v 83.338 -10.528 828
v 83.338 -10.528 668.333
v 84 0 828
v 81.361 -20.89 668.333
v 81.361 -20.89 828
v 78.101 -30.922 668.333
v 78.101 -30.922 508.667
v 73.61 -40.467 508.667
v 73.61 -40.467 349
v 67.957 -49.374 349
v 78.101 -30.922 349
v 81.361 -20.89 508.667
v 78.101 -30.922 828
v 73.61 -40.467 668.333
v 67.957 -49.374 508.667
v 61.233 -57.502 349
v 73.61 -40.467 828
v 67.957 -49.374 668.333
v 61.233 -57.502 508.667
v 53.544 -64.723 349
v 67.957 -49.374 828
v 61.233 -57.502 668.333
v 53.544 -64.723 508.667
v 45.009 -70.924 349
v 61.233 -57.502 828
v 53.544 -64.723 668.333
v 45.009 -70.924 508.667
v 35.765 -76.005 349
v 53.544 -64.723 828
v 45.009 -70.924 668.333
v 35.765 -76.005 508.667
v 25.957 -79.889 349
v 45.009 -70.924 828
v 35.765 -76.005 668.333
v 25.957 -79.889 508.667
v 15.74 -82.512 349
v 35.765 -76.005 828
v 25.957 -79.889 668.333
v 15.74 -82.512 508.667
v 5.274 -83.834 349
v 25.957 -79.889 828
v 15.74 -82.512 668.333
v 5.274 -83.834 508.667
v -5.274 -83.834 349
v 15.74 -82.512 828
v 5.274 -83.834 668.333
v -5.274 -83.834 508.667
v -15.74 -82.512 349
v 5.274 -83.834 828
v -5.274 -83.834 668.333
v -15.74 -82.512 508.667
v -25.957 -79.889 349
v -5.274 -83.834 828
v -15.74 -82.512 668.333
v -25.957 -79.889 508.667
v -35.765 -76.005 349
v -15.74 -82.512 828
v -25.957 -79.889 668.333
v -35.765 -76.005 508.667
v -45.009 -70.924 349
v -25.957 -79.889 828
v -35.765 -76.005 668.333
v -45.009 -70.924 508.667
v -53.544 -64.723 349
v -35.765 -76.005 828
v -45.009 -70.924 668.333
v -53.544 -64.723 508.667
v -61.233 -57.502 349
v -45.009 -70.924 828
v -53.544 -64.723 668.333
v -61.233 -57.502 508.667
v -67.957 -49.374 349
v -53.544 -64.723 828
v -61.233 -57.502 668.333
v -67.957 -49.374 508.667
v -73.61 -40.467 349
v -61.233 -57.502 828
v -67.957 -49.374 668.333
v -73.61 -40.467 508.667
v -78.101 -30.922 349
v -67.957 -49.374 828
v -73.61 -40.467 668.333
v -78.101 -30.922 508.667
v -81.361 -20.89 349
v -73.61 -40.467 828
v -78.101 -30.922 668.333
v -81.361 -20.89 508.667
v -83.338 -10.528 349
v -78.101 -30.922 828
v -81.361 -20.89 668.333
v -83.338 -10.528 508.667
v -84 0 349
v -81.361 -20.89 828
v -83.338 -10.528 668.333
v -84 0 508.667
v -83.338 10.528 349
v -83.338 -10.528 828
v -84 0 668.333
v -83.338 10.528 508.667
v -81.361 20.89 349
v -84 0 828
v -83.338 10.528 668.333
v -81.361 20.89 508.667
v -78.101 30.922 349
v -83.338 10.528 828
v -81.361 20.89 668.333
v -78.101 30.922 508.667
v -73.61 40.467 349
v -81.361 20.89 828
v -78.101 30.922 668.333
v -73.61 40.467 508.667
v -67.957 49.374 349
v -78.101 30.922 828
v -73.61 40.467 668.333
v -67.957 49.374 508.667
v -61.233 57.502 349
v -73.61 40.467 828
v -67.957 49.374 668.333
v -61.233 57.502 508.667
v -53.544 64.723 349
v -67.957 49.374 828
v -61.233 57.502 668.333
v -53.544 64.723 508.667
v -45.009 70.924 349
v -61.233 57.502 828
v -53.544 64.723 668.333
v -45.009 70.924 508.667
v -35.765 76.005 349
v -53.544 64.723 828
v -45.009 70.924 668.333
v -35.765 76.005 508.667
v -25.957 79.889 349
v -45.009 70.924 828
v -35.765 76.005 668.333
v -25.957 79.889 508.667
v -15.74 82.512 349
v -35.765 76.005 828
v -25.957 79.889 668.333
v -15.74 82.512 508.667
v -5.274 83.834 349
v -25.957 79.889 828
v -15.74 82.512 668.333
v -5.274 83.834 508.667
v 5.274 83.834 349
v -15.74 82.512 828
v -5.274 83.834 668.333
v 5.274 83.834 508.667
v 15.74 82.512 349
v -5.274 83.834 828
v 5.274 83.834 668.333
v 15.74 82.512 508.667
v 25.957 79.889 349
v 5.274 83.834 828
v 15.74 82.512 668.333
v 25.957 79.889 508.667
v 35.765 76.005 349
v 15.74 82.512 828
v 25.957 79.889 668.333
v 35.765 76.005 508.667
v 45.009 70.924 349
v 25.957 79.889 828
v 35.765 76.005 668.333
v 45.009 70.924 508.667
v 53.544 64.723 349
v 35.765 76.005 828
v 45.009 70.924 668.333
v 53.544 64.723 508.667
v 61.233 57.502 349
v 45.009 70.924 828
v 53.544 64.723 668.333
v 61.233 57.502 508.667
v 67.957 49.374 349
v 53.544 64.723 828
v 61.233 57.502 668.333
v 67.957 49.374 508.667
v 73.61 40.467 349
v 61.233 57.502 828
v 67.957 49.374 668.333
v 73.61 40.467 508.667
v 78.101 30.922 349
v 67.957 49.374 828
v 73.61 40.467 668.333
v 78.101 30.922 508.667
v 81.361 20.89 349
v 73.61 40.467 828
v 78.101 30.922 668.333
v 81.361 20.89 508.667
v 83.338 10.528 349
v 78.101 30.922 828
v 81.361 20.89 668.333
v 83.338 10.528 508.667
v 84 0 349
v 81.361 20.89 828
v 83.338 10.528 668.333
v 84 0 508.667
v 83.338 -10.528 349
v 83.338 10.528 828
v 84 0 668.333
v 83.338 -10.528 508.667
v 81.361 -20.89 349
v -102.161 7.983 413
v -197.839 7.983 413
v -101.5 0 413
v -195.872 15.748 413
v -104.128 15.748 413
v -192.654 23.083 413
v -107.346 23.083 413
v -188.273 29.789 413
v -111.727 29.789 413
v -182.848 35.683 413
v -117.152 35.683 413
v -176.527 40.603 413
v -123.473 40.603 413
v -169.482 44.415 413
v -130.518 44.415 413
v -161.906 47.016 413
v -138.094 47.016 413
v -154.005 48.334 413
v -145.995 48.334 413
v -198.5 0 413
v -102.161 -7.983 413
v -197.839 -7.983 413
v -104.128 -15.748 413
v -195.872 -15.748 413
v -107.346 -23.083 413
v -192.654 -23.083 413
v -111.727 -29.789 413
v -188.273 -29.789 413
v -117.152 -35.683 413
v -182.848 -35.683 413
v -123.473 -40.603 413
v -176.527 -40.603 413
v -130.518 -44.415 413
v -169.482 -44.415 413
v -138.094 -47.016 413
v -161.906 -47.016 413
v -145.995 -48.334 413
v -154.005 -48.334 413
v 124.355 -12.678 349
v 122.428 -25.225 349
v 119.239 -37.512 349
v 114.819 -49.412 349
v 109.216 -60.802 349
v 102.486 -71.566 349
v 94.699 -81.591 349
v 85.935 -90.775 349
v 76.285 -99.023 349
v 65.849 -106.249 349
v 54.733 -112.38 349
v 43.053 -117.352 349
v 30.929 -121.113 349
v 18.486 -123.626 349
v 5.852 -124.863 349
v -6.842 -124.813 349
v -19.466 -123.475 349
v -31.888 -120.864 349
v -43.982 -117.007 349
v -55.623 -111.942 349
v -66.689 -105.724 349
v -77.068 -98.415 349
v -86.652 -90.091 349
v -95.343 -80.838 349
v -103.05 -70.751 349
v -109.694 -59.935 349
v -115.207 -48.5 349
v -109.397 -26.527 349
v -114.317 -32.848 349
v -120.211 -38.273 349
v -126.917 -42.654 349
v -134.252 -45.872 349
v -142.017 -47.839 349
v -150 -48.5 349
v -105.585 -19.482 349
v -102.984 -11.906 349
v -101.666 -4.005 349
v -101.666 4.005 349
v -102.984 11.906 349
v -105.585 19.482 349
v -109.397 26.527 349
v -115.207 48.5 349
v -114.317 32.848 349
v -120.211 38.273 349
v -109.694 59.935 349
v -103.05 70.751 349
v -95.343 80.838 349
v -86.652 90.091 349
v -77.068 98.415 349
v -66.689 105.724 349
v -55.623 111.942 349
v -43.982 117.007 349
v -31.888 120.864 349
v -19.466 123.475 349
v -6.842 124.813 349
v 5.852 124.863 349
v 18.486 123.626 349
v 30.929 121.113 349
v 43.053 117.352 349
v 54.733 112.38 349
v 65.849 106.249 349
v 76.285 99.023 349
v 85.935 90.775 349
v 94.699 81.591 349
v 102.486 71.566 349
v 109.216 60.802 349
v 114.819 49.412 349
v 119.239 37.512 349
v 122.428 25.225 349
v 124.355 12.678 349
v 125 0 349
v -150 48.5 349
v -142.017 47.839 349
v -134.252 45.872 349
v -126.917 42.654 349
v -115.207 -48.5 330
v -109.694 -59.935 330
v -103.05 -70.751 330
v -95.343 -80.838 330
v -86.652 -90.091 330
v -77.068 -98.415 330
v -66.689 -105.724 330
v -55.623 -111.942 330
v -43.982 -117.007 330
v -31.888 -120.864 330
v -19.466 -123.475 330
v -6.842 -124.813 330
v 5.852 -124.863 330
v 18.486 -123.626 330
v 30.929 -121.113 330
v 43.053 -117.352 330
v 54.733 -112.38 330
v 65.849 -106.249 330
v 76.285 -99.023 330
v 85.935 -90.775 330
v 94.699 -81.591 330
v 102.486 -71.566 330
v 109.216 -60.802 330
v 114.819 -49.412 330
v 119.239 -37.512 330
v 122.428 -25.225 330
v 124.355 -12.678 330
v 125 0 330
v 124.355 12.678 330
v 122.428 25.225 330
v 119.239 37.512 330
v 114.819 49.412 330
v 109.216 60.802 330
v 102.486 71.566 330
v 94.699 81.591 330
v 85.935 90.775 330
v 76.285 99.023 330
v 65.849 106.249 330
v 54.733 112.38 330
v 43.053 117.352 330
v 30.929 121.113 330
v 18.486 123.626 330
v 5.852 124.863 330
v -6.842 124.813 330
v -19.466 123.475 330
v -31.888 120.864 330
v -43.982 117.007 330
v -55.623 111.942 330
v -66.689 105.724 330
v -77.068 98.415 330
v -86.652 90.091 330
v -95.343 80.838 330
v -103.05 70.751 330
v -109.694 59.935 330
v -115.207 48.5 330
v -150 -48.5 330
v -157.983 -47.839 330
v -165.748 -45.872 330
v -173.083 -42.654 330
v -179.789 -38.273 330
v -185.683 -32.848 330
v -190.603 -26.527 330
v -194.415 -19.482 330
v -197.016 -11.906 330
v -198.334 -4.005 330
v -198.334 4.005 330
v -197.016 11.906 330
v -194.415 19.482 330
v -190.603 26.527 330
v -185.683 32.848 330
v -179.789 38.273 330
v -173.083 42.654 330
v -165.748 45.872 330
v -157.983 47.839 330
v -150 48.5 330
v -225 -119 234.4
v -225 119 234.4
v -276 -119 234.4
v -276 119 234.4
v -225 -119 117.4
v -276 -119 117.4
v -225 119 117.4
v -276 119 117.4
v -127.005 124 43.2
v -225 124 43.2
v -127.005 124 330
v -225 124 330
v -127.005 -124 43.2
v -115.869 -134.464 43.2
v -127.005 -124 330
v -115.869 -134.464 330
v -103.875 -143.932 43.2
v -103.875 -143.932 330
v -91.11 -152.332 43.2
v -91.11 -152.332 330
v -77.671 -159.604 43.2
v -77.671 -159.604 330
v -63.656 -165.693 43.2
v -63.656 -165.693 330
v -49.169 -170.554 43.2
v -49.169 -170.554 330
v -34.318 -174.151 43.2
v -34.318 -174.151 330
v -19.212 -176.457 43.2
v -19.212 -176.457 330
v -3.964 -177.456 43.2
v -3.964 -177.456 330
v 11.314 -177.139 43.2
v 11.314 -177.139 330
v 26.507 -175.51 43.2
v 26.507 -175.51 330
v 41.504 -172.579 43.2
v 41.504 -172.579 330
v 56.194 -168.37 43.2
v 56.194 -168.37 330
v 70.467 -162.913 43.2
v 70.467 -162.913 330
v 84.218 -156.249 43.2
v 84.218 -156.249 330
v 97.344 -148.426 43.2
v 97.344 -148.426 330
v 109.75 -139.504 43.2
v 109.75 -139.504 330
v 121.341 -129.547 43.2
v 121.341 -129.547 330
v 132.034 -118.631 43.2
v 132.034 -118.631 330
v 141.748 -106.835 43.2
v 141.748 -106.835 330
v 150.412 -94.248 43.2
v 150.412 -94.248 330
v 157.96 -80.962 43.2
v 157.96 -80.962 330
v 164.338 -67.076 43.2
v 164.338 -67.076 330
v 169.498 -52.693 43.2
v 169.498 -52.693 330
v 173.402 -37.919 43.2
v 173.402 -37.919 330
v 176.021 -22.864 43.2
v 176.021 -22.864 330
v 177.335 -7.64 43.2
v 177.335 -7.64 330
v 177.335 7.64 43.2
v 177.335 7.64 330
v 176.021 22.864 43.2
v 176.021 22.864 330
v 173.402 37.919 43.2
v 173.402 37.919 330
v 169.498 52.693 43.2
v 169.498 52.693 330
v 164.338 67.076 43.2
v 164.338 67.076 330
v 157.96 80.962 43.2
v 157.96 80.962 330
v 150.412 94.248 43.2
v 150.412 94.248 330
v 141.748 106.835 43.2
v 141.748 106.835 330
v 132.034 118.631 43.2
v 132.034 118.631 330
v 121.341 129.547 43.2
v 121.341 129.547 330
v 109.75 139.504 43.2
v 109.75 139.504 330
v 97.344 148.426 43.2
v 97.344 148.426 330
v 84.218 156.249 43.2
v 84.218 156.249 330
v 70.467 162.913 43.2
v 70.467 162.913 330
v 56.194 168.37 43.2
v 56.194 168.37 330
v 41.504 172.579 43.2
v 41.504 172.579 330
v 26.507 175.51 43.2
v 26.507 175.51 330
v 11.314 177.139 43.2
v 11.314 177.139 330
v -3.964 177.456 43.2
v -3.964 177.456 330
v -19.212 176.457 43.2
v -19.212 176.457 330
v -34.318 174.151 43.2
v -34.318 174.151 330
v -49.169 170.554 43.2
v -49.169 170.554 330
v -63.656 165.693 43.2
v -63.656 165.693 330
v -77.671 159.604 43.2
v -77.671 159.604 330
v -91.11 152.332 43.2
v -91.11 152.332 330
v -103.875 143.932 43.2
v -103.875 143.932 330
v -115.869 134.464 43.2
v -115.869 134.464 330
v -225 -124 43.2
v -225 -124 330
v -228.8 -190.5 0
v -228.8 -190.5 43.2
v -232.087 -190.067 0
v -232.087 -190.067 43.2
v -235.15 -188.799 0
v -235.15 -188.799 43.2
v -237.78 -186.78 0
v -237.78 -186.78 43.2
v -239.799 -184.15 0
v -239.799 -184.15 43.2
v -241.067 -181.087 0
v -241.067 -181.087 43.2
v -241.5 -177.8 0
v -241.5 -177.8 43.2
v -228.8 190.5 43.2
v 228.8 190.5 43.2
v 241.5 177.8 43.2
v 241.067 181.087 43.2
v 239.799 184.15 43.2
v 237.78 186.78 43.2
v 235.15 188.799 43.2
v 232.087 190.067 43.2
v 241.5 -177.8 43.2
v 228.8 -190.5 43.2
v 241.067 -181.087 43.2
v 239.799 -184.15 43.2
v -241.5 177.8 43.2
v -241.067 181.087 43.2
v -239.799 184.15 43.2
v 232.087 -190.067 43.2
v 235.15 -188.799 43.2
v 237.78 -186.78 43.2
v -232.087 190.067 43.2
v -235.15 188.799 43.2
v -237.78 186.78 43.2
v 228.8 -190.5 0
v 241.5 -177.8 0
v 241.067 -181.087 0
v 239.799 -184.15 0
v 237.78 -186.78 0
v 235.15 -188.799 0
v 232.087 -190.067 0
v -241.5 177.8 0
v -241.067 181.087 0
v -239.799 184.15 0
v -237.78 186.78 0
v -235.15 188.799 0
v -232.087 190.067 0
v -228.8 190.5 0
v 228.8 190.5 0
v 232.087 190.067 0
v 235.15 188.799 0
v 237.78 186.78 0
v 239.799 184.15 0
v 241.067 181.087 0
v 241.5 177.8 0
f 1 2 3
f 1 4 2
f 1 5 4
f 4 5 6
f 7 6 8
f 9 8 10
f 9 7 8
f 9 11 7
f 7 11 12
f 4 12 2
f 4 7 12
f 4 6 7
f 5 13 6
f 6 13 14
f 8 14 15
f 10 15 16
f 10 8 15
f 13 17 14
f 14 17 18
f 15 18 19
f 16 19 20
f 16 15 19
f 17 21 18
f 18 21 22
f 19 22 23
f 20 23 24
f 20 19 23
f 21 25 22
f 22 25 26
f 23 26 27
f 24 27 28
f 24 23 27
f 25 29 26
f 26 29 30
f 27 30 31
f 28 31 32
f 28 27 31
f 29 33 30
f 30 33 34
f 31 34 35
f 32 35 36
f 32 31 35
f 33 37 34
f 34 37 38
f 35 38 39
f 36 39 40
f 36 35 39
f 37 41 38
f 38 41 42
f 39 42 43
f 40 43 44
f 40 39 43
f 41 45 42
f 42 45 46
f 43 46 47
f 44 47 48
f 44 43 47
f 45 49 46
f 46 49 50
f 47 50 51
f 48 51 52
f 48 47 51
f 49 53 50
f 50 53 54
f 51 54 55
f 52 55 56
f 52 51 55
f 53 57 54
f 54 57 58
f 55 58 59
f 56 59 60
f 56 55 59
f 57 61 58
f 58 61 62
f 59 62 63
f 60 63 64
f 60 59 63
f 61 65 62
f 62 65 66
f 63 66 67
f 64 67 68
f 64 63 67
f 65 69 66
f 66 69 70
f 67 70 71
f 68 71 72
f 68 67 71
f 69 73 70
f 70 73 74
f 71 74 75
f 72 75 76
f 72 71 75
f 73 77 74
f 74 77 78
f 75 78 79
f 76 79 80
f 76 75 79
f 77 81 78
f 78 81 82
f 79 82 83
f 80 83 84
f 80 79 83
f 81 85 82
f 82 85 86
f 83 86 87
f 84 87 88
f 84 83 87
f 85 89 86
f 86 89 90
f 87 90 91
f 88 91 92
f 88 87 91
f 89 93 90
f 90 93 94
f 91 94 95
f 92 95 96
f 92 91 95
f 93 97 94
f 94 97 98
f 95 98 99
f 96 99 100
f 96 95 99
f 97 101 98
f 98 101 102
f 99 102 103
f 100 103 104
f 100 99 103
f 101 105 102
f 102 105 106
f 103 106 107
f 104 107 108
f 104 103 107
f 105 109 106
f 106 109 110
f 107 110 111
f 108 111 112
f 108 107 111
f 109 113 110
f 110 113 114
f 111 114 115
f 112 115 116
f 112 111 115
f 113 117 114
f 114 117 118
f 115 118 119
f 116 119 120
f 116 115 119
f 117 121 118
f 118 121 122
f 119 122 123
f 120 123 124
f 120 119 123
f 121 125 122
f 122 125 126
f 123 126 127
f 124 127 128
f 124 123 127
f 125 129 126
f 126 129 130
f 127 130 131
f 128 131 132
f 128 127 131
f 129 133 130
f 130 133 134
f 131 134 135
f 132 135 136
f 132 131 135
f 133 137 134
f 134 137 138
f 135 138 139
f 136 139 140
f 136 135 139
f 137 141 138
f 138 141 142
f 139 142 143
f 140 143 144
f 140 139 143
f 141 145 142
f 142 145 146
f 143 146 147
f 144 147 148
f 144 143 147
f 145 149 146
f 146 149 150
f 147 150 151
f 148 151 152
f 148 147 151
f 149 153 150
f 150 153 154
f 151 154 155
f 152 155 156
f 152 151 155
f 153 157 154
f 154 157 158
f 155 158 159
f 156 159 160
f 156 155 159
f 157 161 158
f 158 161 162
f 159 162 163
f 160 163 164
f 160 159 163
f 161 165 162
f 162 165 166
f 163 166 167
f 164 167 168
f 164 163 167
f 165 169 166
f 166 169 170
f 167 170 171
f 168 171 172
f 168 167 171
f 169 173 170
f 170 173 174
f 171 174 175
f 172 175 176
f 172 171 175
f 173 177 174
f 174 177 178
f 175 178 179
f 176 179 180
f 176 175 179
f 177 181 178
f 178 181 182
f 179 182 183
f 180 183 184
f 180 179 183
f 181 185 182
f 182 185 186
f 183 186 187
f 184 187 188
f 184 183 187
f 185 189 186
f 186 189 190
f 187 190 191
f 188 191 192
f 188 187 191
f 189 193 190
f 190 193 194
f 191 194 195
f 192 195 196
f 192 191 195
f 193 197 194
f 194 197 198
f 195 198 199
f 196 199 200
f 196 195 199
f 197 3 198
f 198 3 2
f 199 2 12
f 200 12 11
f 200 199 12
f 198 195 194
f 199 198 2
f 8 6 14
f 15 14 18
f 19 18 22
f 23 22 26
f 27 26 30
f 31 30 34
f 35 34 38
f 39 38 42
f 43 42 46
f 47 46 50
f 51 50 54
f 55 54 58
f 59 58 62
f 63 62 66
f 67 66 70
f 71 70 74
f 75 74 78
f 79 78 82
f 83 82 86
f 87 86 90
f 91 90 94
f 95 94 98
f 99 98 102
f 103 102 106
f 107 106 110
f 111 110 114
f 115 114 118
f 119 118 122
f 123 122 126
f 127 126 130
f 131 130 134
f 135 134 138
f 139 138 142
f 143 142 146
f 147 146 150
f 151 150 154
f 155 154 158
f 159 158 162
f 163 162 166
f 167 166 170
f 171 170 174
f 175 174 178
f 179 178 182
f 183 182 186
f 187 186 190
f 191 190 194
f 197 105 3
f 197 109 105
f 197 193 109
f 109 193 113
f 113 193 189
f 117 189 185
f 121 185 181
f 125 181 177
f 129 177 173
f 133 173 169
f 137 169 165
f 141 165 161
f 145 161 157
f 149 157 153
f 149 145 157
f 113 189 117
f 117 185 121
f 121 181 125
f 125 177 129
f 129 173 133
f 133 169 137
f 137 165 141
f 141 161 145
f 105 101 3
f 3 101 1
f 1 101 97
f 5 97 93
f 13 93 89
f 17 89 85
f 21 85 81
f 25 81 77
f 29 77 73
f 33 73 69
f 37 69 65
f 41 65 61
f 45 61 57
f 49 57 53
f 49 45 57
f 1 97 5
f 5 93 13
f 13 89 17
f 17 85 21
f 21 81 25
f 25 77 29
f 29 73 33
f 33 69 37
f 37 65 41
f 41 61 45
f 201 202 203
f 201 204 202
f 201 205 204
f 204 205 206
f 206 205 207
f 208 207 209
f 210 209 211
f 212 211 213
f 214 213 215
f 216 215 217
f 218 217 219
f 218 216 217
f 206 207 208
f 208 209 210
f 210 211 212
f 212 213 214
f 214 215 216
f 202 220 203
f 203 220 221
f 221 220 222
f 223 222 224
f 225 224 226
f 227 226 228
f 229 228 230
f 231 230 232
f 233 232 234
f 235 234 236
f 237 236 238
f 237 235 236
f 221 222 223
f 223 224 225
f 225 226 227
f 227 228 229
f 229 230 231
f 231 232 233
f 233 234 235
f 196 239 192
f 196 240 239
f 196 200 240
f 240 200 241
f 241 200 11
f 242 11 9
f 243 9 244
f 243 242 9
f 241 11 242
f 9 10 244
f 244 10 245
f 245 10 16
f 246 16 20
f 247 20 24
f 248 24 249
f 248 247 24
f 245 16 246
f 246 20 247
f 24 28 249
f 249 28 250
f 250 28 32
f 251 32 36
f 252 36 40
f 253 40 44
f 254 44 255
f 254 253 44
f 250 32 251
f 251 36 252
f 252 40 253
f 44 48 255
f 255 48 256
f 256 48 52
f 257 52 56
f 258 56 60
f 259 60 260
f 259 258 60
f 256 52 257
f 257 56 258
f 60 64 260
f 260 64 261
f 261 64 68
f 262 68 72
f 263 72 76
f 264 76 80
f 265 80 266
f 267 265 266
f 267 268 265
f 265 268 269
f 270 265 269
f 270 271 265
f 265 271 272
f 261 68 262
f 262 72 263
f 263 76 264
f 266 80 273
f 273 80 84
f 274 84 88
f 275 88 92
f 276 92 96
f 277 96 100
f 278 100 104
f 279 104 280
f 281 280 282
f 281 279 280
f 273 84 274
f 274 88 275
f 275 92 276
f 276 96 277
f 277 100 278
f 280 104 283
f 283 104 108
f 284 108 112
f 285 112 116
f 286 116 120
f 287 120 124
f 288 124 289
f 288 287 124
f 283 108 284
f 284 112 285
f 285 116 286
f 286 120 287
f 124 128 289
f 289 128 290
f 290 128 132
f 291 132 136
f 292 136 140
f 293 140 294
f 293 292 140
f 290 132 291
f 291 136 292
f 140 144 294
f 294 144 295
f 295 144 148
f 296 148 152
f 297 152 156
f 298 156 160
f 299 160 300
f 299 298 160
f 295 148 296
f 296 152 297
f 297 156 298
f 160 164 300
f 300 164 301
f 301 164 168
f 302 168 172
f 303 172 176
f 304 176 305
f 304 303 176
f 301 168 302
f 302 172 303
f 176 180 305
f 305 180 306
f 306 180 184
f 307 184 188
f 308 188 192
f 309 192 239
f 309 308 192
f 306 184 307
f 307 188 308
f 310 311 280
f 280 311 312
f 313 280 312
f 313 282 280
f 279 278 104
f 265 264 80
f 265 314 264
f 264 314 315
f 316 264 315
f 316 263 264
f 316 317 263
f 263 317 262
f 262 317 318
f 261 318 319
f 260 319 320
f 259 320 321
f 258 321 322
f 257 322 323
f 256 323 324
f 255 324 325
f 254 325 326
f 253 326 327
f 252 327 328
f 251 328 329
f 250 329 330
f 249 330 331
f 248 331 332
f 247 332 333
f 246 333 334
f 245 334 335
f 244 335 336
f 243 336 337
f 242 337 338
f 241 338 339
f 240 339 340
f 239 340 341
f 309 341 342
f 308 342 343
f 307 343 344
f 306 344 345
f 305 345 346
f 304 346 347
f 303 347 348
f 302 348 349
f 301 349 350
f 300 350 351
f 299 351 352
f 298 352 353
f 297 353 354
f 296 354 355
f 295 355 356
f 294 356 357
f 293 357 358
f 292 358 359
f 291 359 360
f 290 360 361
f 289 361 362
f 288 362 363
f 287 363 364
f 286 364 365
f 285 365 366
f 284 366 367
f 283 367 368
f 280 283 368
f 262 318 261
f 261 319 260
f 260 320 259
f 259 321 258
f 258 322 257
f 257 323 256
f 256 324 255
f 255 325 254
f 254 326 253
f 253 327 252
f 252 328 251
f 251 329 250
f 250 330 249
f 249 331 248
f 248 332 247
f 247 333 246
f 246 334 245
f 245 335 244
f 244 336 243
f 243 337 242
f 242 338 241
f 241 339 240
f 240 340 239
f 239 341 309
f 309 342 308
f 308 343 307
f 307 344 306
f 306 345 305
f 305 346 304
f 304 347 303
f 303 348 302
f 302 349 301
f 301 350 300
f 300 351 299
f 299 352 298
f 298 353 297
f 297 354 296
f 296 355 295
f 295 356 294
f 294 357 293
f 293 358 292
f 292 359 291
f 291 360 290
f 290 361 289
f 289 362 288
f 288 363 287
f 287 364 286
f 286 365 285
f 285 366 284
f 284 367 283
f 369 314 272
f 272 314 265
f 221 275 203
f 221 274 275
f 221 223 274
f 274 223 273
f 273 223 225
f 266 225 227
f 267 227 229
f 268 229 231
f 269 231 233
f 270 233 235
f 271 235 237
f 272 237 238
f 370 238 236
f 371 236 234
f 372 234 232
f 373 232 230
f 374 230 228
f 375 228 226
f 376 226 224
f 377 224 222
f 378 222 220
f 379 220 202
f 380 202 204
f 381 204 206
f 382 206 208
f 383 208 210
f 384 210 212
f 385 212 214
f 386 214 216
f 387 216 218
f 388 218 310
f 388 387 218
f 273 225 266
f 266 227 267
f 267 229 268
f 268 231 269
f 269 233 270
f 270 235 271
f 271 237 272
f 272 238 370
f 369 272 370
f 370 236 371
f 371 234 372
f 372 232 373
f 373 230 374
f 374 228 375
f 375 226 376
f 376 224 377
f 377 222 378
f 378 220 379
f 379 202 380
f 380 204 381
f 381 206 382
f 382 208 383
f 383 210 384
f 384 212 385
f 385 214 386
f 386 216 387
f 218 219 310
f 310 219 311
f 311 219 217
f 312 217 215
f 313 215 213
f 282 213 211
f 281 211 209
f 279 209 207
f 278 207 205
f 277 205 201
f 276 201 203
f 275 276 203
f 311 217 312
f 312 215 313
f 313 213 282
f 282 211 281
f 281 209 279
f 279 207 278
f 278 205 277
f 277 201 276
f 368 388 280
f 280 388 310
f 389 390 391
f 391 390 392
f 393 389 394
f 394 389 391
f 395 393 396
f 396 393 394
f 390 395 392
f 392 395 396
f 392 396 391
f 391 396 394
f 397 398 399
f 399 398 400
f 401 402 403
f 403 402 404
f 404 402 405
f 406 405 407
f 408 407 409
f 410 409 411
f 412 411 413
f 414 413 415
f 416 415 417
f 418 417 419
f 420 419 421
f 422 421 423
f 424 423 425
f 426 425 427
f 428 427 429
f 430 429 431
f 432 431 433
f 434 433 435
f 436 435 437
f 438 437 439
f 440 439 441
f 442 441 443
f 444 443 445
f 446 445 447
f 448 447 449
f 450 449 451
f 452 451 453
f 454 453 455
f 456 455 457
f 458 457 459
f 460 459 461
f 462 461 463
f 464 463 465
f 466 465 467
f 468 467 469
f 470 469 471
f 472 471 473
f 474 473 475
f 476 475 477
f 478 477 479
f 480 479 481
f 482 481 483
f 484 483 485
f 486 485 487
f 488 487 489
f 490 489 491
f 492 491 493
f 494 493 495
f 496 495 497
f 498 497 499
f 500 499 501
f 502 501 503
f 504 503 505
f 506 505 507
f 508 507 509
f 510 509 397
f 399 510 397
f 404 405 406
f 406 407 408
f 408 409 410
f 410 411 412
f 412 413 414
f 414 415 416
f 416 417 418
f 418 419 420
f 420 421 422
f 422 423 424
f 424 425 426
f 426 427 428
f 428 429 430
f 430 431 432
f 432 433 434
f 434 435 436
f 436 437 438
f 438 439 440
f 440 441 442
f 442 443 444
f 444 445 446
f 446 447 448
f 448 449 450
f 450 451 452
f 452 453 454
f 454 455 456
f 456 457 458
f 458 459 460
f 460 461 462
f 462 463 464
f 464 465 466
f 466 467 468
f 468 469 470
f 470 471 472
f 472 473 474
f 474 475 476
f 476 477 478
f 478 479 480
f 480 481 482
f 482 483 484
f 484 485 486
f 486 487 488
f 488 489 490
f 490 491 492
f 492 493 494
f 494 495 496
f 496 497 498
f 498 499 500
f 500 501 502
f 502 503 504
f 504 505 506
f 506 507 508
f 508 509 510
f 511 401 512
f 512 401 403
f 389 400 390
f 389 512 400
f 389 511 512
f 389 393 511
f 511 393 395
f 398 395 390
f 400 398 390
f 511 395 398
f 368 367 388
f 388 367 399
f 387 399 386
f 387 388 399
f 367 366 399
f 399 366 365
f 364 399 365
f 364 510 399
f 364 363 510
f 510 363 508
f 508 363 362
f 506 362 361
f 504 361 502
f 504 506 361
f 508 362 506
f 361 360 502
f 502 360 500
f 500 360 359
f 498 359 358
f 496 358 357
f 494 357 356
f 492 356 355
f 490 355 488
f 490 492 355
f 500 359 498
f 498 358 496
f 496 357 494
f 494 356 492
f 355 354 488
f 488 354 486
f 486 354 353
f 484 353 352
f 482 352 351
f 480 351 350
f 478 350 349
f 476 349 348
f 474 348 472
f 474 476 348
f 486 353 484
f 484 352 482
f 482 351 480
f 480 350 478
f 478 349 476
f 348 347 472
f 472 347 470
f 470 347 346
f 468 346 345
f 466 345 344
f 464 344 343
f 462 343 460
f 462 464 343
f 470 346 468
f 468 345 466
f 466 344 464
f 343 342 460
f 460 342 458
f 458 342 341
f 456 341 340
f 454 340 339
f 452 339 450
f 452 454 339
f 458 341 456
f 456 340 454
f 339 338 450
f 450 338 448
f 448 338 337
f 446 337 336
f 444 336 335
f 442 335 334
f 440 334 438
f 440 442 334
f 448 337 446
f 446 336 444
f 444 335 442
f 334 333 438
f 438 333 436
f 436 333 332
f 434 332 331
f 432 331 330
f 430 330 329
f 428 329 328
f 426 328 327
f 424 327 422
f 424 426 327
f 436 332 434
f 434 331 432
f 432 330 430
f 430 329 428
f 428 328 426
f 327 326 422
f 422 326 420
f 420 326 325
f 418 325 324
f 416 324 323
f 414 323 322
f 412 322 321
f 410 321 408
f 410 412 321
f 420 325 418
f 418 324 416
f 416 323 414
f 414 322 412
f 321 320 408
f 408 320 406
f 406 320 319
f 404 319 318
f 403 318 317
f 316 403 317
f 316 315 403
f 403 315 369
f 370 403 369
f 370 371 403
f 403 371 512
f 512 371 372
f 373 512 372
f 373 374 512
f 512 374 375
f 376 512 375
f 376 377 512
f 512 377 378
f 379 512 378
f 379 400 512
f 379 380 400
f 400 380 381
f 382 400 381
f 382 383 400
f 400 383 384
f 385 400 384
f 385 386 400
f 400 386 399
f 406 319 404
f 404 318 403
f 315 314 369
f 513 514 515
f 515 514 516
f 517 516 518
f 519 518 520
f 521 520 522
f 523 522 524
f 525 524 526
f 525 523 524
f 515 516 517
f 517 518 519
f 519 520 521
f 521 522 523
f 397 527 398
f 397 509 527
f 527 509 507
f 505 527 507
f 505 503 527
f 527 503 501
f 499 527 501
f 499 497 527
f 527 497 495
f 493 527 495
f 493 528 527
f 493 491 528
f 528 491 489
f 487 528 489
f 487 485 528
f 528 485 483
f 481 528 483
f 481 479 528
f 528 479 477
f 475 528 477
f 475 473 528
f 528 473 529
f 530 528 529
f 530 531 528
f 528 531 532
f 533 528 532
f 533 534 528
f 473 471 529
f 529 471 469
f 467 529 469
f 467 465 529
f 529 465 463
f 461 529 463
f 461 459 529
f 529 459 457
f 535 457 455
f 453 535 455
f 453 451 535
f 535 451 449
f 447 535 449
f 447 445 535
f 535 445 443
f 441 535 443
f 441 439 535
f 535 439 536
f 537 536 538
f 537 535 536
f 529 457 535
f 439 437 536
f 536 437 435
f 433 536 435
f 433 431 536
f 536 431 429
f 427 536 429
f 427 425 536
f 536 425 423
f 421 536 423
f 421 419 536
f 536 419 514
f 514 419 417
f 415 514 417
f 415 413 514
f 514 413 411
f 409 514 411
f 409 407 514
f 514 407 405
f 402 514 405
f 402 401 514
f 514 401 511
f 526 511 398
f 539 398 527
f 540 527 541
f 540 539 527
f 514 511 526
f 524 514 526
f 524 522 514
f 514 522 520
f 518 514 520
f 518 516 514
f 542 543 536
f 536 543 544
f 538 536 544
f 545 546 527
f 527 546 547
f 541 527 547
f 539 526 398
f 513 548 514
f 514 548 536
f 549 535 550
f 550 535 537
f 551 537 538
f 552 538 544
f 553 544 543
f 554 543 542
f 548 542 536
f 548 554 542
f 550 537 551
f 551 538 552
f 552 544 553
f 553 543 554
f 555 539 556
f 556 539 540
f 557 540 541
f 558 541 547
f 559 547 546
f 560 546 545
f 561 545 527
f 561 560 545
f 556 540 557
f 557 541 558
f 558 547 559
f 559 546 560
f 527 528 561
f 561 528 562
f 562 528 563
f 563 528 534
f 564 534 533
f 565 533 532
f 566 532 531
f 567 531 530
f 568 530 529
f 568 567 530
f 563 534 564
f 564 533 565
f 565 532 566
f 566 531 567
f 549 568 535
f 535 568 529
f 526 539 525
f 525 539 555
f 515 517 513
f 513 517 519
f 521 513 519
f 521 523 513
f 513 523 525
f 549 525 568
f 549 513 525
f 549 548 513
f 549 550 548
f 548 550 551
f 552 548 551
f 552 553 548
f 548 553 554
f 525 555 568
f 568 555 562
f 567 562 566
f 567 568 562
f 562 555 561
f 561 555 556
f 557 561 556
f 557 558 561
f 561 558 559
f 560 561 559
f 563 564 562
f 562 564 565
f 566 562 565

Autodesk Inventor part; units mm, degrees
ref_plane "YZ Plane" through (0, 0, 0) normal (1, 0, 0) x (0, 1, 0)
ref_plane "XZ Plane" through (0, 0, 0) normal (0, 1, 0) x (-1, 0, 0)
ref_plane "XY Plane" through (0, 0, 0) normal (0, 0, 1) x (1, 0, 0)
sketch "Sketch1" plane through (0, 0, 0) normal (0, 0, 1) x (1, 0, 0)
  line L0 (-241.5, 190.5) -> (241.5, 190.5)
  line L1 (241.5, 190.5) -> (241.5, -190.5)
  line L2 (241.5, -190.5) -> (-241.5, -190.5)
  line L3 (-241.5, -190.5) -> (-241.5, 190.5)
  point P0 (0, 0)
  point P1 (241.5, 0)
  point P2 (0, 190.5)
  dimension "d0" = 483
  dimension "d1" = 381
extrude "Extrusion1" add sketch "Sketch1" along normal blind 43.2
fillet "Fillet1" radius 12.7 4 edges at (241.5, 190.5, 21.6) (-241.5, 190.5, 21.6) (241.5, -190.5, 21.6) (-241.5, -190.5, 21.6)
sketch "Sketch2" plane through (0, 0, 43.2) normal (0, 0, 1) x (1, 0, 0)
  circle A0 centre (0, 0) radius 177.5 construction
  line L0 (-225, 124) -> (-225, -124)
  line L1 (-225, 124) -> (-127.0049, 124)
  line L2 (-241.5, -177.8) -> (-241.5, 177.8) projected
  line L3 (-225, -124) -> (-127.0049, -124)
  arc A1 (-127.0049, -124) -> (-127.0049, 124) centre (0, 0) ccw
  point P0 (-225, 0)
  dimension "d5" = 355
  dimension "d6" = 248
  dimension "d7" = 225
extrude "Extrusion2" add sketch "Sketch2" along normal blind 286.8
sketch "Sketch3" plane through (-225, -124, 43.2) normal (-1, 0, 0) x (0, 0, 1)
  line L0 (191.2, 243) -> (74.2, 243)
  line L1 (74.2, 243) -> (74.2, 5)
  line L2 (74.2, 5) -> (191.2, 5)
  line L3 (191.2, 5) -> (191.2, 243)
  line L4 (0, 301.8) -> (0, -53.8) projected
  point P0 (-43.2, 124)
  point P1 (191.2, 124)
  point P2 (0, 124)
  dimension "d10" = 238
  dimension "d11" = 117
  dimension "d12" = 74.2
extrude "Extrusion3" add sketch "Sketch3" along normal blind 51
sketch "Sketch4" plane through (0, 0, 330) normal (0, 0, 1) x (1, 0, 0)
  circle A0 centre (0, 0) radius 125 construction
  circle A1 centre (-150, 0) radius 48.5 construction
  line L0 (-150, 48.5) -> (-115.2074, 48.5)
  line L1 (-150, -48.5) -> (-115.2074, -48.5)
  arc A2 (-150, 48.5) -> (-150, -48.5) centre (-150, 0) ccw
  arc A3 (-115.2074, -48.5) -> (-115.2074, 48.5) centre (0, 0) ccw
  dimension "d15" = 250
  dimension "d16" = 97
  dimension "d17" = 150
extrude "Extrusion4" add sketch "Sketch4" along normal blind 19
sketch "Sketch5" plane through (0, 0, 349) normal (0, 0, 1) x (1, 0, 0)
  arc A0 (-150, 48.5) -> (-150, -48.5) centre (-150, 0) ccw projected
  circle A1 centre (-150, 0) radius 48.5
  point P0 (0, 0)
extrude "Extrusion5" add sketch "Sketch5" along normal blind 64
sketch "Sketch6" plane through (0, 0, 349) normal (0, 0, 1) x (1, 0, 0)
  circle A0 centre (0, 0) radius 84
  dimension "d22" = 168
extrude "Extrusion6" add sketch "Sketch6" along normal blind 479
properties part number "Base"
